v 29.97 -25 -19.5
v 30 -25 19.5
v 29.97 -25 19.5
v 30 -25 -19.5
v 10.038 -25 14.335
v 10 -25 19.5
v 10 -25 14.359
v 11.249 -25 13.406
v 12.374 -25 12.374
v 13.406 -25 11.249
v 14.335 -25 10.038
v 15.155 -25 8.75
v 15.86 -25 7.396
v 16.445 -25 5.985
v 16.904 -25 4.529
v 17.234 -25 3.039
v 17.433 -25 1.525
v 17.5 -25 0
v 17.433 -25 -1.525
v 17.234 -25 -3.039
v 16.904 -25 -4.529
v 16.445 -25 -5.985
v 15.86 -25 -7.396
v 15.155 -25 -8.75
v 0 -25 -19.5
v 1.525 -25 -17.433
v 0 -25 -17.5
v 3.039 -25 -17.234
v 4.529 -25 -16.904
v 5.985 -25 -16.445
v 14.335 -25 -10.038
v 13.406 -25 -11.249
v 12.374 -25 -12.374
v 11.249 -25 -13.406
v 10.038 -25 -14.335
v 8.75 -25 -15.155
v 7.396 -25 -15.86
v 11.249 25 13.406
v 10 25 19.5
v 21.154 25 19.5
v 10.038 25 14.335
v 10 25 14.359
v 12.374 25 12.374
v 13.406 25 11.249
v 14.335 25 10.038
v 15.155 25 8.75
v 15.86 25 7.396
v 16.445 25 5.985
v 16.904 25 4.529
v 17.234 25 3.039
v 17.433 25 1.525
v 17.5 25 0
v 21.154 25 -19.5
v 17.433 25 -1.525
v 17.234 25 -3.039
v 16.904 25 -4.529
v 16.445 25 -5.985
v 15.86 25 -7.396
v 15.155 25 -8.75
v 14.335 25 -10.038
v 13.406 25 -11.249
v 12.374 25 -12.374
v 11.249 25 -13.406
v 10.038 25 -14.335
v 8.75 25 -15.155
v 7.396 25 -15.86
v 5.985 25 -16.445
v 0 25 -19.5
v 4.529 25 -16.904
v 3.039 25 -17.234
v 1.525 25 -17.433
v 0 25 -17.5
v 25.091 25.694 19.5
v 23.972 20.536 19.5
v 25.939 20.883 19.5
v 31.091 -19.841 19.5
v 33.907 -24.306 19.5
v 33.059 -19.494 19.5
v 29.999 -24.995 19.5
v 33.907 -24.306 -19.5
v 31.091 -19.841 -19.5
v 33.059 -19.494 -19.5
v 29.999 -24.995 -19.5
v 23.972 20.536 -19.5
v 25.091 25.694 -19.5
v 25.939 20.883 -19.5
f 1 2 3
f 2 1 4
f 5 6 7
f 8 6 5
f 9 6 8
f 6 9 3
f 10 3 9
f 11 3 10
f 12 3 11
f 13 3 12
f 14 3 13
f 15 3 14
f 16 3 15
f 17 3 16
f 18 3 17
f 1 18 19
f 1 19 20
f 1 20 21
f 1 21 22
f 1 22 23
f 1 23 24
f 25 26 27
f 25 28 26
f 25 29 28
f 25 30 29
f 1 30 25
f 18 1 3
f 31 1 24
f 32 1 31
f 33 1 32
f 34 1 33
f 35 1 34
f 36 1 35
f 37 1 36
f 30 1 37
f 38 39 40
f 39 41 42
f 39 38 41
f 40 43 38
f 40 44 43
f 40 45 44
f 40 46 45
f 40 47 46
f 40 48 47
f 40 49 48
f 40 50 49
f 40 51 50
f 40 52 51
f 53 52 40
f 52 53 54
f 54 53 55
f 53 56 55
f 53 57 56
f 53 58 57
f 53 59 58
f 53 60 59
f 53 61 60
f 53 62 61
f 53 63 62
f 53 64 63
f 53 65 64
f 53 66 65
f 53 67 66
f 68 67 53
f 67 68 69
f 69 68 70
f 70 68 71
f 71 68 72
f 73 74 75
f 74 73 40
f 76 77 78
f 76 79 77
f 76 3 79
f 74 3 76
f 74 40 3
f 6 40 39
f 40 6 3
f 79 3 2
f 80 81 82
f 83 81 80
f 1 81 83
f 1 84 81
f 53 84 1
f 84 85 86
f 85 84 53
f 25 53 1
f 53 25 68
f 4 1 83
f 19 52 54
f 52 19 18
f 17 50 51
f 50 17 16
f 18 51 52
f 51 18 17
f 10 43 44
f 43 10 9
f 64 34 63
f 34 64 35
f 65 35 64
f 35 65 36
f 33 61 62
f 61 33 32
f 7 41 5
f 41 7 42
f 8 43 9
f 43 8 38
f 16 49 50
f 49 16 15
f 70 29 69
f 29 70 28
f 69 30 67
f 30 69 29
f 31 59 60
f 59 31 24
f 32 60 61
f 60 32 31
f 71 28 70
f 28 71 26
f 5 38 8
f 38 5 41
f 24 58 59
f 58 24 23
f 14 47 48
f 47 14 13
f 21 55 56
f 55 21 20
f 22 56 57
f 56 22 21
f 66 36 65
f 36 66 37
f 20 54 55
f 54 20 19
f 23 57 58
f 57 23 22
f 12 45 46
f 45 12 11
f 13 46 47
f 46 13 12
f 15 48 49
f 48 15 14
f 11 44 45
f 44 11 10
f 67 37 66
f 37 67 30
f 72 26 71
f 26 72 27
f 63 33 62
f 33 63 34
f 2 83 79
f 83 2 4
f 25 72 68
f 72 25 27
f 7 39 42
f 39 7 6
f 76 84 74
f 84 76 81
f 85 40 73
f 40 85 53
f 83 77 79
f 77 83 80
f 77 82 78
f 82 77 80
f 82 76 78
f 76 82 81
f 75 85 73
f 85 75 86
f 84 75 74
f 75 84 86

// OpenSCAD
breite = 50;
innenRadius = 17.5;
aussenRadius = 19.5;
vorwaerts = 30;
winkel = 10;
wandDicke = 2;
traegerBreite = 41;
gelaenderOffset=10;
//lochRadius = 10;
//
$fa = 5;
$fs = 1;
haelfteVonBreite = 0.5 * breite;
breiteMitPuffer = 1.2 * breite;
haelfteVonBreiteMitPuffer = 0.5 * breiteMitPuffer;
zweimalAussenRadius = 2 * aussenRadius;
leerBreite = breite - 2 * wandDicke;
haelfteVonLeerBreite = 0.5 * leerBreite;
leerHoehe = 2 * aussenRadius - 2 * wandDicke;
haelfteVonLeerHoehe = 0.5 * leerHoehe;
gross = 4 * breite;
haelfteVonGross = 0.5 * gross;
abschlussBreite = breite / cos(winkel);
haelfteVonAbschlussBreite = 0.5 * abschlussBreite;
zweimalWandDicke = 2 * wandDicke;
viermalWandDicke = 4 * wandDicke;
leistenBreite = 0.5 *(abschlussBreite - traegerBreite);
//
module lamelle(vorwaerts = 20, breite = 10, dicke = 0.3) {
    translate([0, -0.5 * breite, 0])
        cube([vorwaerts, breite, dicke]);
}


module lamellenSchar(vorwaerts = 20, breite = 10, dicke = 0.3, anzahlSeitlich = 3, abstand = 2) {
    lamelle(vorwaerts = vorwaerts, breite = breite, dicke = dicke);
    for (i = [1:1:anzahlSeitlich]) {
        translate([0, 0, i * abstand])
            lamelle(vorwaerts = vorwaerts, breite = breite, dicke = dicke);
        translate([0, 0, -i * abstand])
            lamelle(vorwaerts = vorwaerts, breite = breite, dicke = dicke);
    }
}


rotate([0, 0, 0]) {
difference() {
    difference() {
        union() {
            // Konkave Wand zum Geländer
            rotate([90, 0, 0])
                cylinder(h=breite, r=aussenRadius, center=true);
            difference() {
                // Vorwaertsquader
                translate([0, -haelfteVonBreite, -aussenRadius])
                    cube([vorwaerts, breite, zweimalAussenRadius]);
//                // Vorwaertsquader soll innen leer sein
//                translate([0, -haelfteVonLeerBreite, -haelfteVonLeerHoehe])
//                    cube([vorwaerts, leerBreite, leerHoehe]);
            }
//            // Rohr um Bohrloch
//            rotate([0, 90, 0])
//                cylinder(h=vorwaerts, r=lochRadius+wandDicke);
//            // Hohlraum mit Dreieckslamellen füllen/
//            rotate([15, 0, 0]) {
//                lamellenSchar(vorwaerts = vorwaerts, breite = 1.2 * breite, anzahlSeitlich = 13);
//                rotate([120, 0, 0])
//                    lamellenSchar(vorwaerts = vorwaerts, breite = 1.5 * breite, anzahlSeitlich = 13);
//                rotate([240, 0, 0])
//                    lamellenSchar(vorwaerts = vorwaerts, breite = 1.3 * breite, anzahlSeitlich = 13);
//            }
        }
        // Zylinder ausschneiden fuer Gelaender
        rotate([90, 0, 0])
            cylinder(h=breiteMitPuffer, r=innenRadius, center=true);
    }
    union() {
        // Vorwaertquader schraeg abschneiden
        translate([vorwaerts, -haelfteVonBreite, -haelfteVonGross])
            rotate([0, 0, winkel])
                cube([gross, gross, gross]);
//        // Bohrung auf Gelaenderseite
//        translate([0, 0, 0])
//            rotate([0, 90, 0])
//                cylinder(h=vorwaerts, r=lochRadius);
        // Hohlzylinder auf Geländerseite aufschneiden
        translate([-breite, -haelfteVonBreiteMitPuffer, -haelfteVonBreiteMitPuffer])
            cube([breite, breiteMitPuffer, breiteMitPuffer]);
        // Ueberhang abschneiden
        translate([-breite + gelaenderOffset, -haelfteVonBreiteMitPuffer, 0])
            cube([breite, breiteMitPuffer, breiteMitPuffer]);
        // Alles mit y>haelfteVonBreite abschneiden
        translate([-0.05 * vorwaerts, haelfteVonBreite, -haelfteVonGross])
            cube([1.1 * vorwaerts, breite, gross]);
        // Alles mit y<-haelfteVonBreite abschneiden
        translate([-0.05 * vorwaerts, -gross-haelfteVonBreite, -haelfteVonGross])
            cube([1.1 * vorwaerts, gross, gross]);
        // Alles mit z>aussenRadius abschneiden
        translate([-0.05 * vorwaerts, -haelfteVonGross, aussenRadius])
            cube([1.1 * vorwaerts, gross, gross]);
        // Alles mit z<-aussenRadius abschneiden
        translate([-0.05 * vorwaerts, -haelfteVonGross, -3 * aussenRadius])
            cube([1.1 * vorwaerts, gross, zweimalAussenRadius]);
    }
}

// Abschlussplatte
translate([0.999 * vorwaerts, -haelfteVonBreite, -aussenRadius])
    rotate([0, 0, winkel])
        difference() {
            union() {
                // Eigentliche Abschlussplatte
                cube([wandDicke, abschlussBreite, zweimalAussenRadius]);
                // Leiste auf einer Seite
                translate([0.999 * wandDicke, 0, 0])
                    cube([wandDicke, leistenBreite, zweimalAussenRadius]);
                translate([0.999 * wandDicke, abschlussBreite - leistenBreite, 0])
                    cube([wandDicke, leistenBreite, zweimalAussenRadius]);

            }
//            // Loch durch Abschlussplatte
//            translate([-zweimalWandDicke, haelfteVonAbschlussBreite, aussenRadius])
//                rotate([0, 90, 0])
//                    cylinder(h=viermalWandDicke, r=lochRadius);
        }

}
